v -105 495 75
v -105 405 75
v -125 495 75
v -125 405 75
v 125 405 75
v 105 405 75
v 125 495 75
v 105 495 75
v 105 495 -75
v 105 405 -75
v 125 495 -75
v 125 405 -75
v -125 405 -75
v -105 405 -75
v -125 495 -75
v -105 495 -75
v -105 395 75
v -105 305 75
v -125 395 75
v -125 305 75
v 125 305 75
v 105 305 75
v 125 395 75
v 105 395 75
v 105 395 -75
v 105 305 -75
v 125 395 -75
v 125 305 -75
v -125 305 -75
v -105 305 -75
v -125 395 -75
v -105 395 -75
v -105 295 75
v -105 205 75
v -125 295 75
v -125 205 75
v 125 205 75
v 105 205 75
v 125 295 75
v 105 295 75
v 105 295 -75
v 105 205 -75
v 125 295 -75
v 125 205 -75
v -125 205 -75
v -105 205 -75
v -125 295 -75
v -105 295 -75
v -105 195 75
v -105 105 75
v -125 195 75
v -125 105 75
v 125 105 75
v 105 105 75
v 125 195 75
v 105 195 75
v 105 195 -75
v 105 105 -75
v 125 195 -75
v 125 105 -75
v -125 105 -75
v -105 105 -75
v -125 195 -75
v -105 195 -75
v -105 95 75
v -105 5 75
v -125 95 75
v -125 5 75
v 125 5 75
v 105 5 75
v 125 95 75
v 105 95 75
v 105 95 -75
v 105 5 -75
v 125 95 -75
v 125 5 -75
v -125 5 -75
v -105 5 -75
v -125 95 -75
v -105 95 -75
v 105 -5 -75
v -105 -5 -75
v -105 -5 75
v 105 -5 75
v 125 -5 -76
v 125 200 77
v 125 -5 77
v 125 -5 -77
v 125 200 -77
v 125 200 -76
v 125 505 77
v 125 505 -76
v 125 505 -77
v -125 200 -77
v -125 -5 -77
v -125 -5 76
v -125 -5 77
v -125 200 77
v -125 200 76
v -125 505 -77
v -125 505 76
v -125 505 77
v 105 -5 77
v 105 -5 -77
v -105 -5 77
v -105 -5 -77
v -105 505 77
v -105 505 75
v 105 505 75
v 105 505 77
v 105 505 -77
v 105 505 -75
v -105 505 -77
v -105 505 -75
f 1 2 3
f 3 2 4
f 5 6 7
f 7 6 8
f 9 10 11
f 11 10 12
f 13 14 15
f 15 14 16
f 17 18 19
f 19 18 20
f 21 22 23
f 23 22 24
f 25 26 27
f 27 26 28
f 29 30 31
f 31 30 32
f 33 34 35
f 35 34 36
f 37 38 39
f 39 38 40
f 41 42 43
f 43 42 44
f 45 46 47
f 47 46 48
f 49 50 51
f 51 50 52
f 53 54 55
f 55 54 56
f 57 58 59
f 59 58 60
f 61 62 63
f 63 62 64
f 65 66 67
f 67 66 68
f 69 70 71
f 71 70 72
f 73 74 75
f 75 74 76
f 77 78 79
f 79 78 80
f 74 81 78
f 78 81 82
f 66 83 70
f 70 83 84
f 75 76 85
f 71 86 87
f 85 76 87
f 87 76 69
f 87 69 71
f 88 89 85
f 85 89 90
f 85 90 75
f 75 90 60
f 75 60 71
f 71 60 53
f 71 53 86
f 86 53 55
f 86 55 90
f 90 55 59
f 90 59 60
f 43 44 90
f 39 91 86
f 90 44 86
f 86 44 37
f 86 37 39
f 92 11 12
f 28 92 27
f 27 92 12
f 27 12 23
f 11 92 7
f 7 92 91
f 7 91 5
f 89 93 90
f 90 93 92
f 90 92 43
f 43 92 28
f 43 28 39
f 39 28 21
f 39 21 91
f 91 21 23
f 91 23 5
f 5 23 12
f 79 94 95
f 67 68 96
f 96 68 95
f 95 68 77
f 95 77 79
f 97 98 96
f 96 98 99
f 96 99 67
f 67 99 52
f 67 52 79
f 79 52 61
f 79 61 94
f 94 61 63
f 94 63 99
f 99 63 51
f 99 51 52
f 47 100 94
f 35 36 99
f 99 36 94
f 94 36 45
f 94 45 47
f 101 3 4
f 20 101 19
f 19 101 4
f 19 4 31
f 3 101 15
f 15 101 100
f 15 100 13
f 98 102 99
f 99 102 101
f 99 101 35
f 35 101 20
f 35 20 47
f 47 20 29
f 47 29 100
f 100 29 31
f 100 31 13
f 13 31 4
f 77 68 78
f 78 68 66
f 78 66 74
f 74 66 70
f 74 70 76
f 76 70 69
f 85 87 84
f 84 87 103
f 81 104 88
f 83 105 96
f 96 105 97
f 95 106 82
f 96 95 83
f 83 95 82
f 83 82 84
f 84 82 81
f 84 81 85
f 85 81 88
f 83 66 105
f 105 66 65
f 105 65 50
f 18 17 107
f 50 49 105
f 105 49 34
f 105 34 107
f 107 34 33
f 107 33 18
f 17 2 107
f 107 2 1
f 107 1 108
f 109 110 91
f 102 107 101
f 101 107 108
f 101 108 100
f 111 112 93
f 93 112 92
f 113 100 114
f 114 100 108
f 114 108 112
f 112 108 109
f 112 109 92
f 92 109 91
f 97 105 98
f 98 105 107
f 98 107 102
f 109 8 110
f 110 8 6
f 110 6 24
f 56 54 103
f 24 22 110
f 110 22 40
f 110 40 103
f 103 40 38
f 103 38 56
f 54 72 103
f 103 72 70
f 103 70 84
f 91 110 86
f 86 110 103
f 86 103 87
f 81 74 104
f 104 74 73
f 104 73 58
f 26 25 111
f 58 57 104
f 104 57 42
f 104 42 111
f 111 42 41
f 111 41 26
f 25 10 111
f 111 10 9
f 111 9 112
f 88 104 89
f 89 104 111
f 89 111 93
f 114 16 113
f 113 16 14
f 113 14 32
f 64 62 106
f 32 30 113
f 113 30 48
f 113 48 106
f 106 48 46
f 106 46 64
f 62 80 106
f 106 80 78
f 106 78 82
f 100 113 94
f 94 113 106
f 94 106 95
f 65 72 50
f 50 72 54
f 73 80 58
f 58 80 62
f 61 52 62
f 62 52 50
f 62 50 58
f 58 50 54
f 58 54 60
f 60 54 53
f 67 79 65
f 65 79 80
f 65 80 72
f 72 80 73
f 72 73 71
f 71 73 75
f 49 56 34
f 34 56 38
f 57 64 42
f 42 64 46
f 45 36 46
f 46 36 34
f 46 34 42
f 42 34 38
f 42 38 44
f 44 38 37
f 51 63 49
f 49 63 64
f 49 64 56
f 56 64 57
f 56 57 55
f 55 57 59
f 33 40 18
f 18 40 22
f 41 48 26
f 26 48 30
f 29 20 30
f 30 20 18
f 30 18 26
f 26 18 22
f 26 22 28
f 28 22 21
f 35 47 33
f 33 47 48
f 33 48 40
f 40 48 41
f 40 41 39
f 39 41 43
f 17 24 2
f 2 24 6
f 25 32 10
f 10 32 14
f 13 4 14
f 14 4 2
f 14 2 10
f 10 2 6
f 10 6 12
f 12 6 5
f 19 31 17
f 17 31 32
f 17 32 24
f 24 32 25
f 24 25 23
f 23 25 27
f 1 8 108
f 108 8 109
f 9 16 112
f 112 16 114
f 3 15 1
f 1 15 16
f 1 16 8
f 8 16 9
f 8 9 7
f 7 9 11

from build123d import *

# Parameters (mm, degrees)
SKIZZE1_W                       = 250
SKIZZE1_H                       = 150
AUFSATZ_LINEAR_AUSTRAGEN1_DEPTH = 5
SKIZZE2_W                       = 20
SKIZZE2_H                       = 510
AUFSATZ_LINEAR_AUSTRAGEN2_DEPTH = 2
SKIZZE3_W                       = 20
SKIZZE3_H                       = 510
AUFSATZ_LINEAR_AUSTRAGEN3_DEPTH = 2
LINEARES_MUSTER3_COUNT          = 6
LINEARES_MUSTER3_PITCH          = 100


with BuildPart() as part:
    # Skizze1 → Aufsatz-Linear austragen1 (new, symmetric)
    with BuildSketch(Plane(origin=(0, 0, 0), x_dir=(1, 0, 0), z_dir=(0, 1, 0))):
        Rectangle(SKIZZE1_W, SKIZZE1_H)
    aufsatz_linear_austragen1 = extrude(amount=AUFSATZ_LINEAR_AUSTRAGEN1_DEPTH, both=True)

    # Skizze2 → Aufsatz-Linear austragen2 (add)
    with BuildSketch(Plane.XY.offset(75)):
        with Locations((-115, 250)):
            Rectangle(SKIZZE2_W, SKIZZE2_H)
        with Locations((115, 250)):
            Rectangle(SKIZZE2_W, SKIZZE2_H)
    extrude(amount=AUFSATZ_LINEAR_AUSTRAGEN2_DEPTH)

    # Skizze3 → Aufsatz-Linear austragen3 (add)
    with BuildSketch(Plane(origin=(0, 0, -75), x_dir=(-1, 0, 0), z_dir=(0, 0, -1))):
        with Locations((-115, 250)):
            Rectangle(SKIZZE3_W, SKIZZE3_H)
        with Locations((115, 250)):
            Rectangle(SKIZZE3_W, SKIZZE3_H)
    extrude(amount=AUFSATZ_LINEAR_AUSTRAGEN3_DEPTH)

    # Lineares Muster3: Aufsatz-Linear austragen1 ×6
    with Locations(*[(0, i * LINEARES_MUSTER3_PITCH, 0) for i in range(1, LINEARES_MUSTER3_COUNT)]):
        add(aufsatz_linear_austragen1)


solid = part.part
